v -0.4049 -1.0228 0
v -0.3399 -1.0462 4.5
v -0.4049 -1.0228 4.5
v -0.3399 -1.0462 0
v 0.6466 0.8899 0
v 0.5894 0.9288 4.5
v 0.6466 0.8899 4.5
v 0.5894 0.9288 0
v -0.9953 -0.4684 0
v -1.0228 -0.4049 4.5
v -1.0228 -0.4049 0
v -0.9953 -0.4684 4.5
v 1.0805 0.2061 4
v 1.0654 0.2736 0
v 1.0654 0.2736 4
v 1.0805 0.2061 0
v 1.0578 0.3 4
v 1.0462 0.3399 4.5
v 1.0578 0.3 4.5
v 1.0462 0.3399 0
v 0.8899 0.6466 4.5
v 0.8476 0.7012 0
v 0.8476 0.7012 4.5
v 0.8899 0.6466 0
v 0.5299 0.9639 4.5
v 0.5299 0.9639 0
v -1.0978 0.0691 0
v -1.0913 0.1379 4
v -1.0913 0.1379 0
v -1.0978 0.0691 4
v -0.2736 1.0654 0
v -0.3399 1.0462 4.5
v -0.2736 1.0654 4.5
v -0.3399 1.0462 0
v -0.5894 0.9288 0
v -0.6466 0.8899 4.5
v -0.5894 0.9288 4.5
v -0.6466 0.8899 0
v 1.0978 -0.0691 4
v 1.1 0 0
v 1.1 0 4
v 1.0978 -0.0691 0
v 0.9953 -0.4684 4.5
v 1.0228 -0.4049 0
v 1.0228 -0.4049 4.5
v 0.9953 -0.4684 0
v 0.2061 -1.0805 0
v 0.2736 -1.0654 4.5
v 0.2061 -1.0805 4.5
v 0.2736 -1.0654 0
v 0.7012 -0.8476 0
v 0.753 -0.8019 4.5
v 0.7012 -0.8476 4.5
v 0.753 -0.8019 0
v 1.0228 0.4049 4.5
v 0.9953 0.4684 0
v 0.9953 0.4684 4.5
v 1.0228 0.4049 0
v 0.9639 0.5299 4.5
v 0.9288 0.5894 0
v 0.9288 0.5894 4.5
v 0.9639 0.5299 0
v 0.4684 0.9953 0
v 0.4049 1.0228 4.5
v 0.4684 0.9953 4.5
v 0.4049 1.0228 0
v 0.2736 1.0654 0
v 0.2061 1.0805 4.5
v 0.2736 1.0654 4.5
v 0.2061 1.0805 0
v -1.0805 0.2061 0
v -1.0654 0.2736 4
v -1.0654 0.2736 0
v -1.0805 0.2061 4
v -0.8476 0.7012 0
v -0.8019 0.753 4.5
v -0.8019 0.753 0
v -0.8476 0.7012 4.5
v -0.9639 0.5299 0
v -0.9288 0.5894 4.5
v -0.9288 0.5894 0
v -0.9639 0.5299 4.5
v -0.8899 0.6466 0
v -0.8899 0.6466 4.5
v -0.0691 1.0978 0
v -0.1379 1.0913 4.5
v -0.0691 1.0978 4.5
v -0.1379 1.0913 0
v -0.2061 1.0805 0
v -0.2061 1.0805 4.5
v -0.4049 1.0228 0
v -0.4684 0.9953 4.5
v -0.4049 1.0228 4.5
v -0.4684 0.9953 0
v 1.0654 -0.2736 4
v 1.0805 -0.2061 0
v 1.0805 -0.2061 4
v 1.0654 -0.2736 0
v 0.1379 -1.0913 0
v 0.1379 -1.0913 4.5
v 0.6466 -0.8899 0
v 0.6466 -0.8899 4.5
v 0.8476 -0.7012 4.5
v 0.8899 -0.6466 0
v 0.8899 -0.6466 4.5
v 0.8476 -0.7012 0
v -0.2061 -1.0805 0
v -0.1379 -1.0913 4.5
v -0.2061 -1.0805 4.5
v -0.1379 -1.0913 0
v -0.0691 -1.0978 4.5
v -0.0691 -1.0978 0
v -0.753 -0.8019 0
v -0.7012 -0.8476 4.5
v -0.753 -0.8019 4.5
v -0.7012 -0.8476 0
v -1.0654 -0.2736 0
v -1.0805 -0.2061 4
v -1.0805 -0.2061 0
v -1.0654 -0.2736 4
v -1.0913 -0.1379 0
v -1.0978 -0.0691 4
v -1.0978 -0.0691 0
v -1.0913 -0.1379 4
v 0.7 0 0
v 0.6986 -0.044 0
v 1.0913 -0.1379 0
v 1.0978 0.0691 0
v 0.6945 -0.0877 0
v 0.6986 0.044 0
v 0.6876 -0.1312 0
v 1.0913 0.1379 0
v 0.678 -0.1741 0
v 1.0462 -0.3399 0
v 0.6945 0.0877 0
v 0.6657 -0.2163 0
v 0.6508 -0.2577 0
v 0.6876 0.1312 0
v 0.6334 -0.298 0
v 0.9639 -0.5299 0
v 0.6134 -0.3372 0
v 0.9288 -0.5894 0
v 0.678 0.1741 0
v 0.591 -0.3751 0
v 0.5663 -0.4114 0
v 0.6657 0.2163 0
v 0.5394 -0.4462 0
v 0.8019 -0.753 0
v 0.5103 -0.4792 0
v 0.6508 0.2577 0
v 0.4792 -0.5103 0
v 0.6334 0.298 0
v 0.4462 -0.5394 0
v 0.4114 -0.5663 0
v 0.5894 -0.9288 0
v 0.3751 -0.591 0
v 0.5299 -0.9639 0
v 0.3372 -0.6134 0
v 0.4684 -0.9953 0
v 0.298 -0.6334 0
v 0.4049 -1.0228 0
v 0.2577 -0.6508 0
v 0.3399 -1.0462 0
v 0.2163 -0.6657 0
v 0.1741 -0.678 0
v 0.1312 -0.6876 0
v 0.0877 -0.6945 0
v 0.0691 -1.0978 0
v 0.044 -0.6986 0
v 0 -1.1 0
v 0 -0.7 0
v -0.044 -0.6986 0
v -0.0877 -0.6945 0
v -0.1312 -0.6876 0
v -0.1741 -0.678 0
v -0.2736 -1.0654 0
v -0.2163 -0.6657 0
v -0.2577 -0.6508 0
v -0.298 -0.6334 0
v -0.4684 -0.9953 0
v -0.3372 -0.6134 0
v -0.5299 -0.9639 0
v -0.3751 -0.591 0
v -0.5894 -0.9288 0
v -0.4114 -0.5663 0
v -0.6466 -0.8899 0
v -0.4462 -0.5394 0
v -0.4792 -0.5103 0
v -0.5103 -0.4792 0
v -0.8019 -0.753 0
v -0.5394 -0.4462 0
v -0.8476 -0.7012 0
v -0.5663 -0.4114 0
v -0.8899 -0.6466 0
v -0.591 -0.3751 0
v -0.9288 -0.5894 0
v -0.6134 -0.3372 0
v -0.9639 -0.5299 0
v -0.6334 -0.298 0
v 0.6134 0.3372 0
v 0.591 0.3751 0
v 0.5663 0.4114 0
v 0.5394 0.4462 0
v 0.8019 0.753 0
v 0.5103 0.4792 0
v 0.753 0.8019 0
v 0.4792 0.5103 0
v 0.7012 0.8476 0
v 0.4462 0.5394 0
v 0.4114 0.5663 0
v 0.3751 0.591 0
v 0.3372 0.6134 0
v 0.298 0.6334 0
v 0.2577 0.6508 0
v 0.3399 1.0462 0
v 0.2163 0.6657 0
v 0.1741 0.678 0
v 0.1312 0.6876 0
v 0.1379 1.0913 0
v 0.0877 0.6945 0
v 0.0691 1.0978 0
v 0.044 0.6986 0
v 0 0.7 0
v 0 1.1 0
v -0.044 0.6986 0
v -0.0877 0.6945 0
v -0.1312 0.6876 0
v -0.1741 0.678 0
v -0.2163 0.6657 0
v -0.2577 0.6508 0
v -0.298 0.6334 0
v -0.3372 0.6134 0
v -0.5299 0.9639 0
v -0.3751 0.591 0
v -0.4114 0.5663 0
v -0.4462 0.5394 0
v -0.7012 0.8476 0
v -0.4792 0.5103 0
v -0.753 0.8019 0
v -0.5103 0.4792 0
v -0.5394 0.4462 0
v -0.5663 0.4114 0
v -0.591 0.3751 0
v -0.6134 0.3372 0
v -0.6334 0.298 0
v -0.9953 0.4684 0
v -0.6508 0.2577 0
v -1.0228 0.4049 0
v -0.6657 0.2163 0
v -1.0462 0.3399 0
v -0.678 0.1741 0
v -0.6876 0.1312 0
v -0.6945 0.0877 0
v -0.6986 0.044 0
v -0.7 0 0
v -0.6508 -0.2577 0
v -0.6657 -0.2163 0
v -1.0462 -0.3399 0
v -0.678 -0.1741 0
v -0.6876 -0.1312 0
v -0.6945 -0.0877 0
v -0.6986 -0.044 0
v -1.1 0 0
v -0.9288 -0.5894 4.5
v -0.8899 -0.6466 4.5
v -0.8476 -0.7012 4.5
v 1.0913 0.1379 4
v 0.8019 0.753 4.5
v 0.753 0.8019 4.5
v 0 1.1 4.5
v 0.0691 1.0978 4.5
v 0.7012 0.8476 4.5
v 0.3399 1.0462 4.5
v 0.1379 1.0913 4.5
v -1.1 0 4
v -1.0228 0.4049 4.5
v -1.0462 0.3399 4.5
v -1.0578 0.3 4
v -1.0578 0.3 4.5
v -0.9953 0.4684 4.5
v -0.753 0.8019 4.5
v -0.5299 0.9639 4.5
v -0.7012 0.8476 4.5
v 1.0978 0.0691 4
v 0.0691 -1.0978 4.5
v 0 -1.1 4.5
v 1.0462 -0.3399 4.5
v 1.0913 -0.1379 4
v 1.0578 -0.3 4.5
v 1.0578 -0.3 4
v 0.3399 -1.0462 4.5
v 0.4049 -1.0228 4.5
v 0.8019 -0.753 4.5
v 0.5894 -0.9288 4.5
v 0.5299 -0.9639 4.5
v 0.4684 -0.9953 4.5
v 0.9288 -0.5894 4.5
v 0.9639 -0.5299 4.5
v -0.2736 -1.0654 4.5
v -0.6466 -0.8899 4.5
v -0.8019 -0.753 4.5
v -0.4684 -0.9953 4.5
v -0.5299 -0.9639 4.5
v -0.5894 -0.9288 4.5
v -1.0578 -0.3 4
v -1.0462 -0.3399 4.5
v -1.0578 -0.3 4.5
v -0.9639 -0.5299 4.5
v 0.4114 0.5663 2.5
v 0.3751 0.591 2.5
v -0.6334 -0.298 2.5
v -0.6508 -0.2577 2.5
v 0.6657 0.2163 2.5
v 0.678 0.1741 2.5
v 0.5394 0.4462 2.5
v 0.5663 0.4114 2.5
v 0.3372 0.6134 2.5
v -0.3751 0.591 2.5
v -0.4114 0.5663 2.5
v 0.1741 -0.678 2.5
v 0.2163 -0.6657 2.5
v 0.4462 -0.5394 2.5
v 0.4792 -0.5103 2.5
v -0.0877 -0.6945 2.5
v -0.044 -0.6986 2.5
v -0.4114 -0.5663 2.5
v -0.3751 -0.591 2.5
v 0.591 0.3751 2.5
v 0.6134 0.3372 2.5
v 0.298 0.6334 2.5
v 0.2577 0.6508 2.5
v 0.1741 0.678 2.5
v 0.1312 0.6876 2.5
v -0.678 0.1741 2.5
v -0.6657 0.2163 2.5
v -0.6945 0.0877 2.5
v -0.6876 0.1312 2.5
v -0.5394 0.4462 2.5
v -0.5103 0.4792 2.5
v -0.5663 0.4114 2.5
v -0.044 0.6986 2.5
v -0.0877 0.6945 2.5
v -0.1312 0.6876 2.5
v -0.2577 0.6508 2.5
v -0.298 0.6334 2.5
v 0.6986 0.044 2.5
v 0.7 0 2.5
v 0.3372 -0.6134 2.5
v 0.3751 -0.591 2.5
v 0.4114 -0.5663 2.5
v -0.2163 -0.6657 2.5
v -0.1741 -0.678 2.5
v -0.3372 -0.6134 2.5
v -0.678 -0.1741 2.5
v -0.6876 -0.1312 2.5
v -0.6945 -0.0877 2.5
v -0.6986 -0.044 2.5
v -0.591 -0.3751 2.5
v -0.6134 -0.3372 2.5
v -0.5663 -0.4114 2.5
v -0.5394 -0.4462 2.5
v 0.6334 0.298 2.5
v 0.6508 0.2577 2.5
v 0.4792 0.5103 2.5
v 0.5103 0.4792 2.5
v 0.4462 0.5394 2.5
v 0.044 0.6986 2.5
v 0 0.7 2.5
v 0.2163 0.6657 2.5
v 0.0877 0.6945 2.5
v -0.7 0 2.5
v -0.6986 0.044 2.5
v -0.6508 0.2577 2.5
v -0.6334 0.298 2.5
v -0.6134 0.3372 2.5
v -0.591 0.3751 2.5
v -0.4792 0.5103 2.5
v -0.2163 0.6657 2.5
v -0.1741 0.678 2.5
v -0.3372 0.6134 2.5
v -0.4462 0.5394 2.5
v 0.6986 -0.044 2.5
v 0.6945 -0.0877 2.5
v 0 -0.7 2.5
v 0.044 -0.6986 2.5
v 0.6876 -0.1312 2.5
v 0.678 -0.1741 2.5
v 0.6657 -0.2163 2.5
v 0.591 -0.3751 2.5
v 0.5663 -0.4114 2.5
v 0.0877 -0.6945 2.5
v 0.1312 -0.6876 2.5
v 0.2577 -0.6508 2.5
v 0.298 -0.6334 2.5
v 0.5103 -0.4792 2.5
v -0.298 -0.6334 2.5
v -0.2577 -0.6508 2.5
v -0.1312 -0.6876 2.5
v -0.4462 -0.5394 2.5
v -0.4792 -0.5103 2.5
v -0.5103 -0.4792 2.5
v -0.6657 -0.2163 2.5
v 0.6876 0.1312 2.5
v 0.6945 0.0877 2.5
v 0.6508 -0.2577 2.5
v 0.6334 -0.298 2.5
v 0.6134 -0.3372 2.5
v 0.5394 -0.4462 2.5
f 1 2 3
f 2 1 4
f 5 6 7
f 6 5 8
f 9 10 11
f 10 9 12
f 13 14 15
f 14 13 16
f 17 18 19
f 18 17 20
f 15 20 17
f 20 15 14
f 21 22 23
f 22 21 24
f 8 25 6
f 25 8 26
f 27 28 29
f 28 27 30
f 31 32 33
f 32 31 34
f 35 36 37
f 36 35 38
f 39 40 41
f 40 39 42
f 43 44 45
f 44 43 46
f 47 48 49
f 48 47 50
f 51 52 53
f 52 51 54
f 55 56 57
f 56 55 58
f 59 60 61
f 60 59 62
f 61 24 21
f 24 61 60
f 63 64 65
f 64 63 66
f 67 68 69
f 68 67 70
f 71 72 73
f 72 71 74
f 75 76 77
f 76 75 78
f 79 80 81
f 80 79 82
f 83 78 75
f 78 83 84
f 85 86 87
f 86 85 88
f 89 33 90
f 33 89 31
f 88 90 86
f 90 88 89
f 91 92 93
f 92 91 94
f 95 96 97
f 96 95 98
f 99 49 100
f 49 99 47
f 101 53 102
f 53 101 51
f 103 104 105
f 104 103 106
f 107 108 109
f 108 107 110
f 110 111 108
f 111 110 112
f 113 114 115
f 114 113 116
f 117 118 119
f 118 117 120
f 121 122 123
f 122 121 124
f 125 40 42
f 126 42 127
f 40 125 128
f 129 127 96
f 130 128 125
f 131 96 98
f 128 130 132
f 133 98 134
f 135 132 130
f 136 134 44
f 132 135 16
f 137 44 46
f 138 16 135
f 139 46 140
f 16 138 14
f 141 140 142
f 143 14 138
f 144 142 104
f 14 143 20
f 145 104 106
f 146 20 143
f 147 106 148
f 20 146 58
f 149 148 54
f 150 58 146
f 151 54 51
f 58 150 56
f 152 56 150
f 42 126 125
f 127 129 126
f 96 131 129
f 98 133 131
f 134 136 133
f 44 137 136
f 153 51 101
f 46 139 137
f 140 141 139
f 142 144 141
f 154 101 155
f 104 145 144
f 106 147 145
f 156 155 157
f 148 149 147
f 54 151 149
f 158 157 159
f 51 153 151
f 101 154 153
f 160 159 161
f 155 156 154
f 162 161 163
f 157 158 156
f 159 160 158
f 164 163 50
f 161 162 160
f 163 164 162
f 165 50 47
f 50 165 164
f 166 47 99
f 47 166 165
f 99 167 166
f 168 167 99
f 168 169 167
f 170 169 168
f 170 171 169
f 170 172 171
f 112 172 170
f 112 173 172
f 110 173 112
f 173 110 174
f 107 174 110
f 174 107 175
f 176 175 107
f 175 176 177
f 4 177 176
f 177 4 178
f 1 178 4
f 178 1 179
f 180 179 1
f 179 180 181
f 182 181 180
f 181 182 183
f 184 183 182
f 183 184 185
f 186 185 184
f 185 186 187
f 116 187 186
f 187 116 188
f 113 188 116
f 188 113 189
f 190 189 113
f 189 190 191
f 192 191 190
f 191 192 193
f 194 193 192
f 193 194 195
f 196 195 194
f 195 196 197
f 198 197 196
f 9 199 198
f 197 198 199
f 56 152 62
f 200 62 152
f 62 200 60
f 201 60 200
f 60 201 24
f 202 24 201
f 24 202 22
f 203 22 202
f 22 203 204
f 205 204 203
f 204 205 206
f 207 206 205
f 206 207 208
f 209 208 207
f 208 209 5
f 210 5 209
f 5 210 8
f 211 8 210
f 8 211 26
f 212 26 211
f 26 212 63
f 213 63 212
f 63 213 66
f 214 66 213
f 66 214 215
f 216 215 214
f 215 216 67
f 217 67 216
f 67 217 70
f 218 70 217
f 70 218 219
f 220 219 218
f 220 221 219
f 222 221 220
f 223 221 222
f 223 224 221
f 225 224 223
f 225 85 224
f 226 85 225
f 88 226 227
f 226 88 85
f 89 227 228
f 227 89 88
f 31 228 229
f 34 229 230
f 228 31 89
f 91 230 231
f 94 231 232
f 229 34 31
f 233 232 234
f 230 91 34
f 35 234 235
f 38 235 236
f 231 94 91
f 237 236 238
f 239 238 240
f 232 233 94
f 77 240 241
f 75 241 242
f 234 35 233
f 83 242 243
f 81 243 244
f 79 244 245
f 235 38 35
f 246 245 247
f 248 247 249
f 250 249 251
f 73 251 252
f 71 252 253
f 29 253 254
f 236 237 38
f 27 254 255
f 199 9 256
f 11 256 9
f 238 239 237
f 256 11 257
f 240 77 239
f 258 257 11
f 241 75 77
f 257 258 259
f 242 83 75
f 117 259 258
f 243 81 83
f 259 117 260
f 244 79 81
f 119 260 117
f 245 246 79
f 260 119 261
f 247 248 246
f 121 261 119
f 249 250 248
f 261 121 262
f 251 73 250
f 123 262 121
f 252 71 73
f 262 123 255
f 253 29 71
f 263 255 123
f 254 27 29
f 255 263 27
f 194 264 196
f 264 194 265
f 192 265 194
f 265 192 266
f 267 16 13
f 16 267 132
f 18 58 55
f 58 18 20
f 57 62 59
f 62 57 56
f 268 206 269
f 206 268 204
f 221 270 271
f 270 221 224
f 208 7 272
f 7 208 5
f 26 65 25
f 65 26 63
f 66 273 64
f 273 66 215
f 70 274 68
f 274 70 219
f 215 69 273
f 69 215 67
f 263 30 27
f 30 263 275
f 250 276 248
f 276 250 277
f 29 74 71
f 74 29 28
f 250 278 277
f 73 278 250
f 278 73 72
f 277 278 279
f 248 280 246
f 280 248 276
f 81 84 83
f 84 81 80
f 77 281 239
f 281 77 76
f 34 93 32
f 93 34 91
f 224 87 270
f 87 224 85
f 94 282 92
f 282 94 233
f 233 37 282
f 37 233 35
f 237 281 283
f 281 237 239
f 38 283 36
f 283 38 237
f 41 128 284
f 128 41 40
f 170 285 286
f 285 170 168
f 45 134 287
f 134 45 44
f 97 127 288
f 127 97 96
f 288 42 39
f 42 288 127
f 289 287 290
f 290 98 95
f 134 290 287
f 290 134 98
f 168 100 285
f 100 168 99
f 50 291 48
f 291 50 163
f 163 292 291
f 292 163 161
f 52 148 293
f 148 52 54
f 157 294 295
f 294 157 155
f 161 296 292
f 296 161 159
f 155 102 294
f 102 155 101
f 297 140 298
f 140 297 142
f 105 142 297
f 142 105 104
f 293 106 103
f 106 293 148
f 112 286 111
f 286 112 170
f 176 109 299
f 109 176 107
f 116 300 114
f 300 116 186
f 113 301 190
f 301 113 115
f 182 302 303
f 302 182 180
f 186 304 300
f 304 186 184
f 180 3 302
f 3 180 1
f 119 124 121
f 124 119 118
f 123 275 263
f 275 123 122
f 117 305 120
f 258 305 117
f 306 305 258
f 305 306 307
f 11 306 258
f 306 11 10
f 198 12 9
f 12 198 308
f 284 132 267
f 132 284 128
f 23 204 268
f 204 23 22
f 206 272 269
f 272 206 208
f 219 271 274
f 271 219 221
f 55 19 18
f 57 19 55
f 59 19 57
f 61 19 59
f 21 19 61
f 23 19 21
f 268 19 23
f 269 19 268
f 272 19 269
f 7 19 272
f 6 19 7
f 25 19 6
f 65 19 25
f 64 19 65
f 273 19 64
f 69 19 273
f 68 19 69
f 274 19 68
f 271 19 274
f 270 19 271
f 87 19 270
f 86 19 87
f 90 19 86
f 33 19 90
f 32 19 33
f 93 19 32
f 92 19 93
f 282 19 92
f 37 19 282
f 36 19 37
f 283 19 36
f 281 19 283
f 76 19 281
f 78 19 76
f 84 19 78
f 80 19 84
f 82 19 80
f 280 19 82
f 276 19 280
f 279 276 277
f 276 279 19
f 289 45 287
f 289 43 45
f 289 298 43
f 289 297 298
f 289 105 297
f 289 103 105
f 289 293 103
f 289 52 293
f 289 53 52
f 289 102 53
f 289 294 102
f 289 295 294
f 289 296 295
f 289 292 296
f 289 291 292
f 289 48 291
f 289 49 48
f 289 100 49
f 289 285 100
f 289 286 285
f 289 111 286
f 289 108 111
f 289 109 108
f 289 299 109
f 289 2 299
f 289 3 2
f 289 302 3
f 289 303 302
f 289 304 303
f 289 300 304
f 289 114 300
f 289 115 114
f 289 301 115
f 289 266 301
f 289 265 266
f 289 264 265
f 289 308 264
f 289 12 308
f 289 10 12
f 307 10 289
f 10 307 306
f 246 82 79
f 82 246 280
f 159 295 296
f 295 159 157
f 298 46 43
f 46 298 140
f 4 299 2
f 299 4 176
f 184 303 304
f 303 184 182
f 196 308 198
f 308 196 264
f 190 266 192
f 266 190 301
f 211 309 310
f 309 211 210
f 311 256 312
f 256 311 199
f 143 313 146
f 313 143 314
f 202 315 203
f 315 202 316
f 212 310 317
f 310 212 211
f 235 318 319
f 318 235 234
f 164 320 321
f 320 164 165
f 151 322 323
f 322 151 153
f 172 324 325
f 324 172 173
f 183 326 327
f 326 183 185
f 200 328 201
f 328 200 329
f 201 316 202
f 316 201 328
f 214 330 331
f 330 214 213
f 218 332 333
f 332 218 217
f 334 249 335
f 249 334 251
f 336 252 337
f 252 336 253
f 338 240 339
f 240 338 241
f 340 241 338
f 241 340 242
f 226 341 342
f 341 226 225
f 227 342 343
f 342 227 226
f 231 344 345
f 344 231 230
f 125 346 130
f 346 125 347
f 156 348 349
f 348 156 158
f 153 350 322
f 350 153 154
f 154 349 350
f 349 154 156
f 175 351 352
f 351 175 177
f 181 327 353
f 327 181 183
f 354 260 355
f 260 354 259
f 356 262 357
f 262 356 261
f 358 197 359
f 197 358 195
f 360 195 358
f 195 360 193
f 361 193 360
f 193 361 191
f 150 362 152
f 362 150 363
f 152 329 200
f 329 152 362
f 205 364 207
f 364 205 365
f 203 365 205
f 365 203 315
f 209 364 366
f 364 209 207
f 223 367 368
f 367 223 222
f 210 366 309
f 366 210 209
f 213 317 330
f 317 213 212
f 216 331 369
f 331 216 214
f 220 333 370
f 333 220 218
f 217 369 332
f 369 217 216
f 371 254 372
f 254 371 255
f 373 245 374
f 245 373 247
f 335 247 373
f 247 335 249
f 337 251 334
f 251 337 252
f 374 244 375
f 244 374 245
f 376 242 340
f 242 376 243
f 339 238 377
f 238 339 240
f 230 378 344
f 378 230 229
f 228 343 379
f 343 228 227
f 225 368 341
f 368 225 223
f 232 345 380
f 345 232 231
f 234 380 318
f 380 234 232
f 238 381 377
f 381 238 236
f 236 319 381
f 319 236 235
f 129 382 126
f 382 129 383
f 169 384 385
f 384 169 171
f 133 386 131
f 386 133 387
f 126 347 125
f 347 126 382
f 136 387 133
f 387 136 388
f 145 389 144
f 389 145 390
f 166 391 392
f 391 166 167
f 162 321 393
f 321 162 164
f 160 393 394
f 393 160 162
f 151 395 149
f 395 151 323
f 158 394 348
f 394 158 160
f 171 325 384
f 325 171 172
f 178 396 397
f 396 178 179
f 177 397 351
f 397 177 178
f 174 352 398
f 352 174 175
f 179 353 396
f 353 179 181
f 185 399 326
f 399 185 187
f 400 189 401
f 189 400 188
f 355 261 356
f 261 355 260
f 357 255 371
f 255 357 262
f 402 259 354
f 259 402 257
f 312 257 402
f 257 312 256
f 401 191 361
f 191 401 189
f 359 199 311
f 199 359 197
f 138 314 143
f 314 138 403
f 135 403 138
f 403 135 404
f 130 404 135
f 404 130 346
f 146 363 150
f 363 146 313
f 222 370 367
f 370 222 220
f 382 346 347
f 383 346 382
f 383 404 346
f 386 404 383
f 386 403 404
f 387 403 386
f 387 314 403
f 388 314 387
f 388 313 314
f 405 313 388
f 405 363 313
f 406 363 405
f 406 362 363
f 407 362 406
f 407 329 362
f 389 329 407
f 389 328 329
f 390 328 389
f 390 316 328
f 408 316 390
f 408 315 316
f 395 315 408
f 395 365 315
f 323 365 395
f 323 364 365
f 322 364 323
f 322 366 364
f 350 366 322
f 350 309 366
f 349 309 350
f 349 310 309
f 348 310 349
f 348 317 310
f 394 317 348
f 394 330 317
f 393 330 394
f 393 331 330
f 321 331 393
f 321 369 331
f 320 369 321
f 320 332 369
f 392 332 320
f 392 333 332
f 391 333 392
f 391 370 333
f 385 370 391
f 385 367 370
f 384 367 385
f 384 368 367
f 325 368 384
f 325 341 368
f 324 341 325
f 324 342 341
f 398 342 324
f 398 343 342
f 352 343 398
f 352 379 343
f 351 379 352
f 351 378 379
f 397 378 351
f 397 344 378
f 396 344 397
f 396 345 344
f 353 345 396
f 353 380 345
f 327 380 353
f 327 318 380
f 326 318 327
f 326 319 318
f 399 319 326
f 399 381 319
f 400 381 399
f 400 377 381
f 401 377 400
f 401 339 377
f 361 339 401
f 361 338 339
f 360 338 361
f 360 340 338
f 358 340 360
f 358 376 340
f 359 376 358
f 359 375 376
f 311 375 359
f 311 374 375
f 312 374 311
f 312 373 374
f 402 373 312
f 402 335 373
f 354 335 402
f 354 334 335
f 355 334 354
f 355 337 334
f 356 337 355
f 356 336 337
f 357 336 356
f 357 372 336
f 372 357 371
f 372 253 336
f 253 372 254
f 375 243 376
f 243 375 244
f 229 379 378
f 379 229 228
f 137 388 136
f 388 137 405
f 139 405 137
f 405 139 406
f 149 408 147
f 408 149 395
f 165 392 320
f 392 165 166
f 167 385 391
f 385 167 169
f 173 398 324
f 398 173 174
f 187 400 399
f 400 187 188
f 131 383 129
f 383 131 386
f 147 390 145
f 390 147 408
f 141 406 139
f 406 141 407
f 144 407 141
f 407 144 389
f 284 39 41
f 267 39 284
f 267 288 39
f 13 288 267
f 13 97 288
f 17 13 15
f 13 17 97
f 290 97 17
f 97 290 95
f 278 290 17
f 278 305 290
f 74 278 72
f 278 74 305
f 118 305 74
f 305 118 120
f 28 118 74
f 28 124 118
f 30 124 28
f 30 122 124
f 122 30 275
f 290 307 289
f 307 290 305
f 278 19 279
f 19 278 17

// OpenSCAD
difference() { 
    //Cap
    union() {
        cylinder(r1=1.1, r2=1.1,h=4.5, $fn=100);           
            
    }
        
    //Threaded rod hole
    translate([0, 0, -0.5]) {
        cylinder(r1=0.7, r2=0.7, h=3, $fn=100);};
     
    //Screwdriver notch   
    translate([-2, -0.3, 4]) {
        cube([4,0.6,1]);};
    }
